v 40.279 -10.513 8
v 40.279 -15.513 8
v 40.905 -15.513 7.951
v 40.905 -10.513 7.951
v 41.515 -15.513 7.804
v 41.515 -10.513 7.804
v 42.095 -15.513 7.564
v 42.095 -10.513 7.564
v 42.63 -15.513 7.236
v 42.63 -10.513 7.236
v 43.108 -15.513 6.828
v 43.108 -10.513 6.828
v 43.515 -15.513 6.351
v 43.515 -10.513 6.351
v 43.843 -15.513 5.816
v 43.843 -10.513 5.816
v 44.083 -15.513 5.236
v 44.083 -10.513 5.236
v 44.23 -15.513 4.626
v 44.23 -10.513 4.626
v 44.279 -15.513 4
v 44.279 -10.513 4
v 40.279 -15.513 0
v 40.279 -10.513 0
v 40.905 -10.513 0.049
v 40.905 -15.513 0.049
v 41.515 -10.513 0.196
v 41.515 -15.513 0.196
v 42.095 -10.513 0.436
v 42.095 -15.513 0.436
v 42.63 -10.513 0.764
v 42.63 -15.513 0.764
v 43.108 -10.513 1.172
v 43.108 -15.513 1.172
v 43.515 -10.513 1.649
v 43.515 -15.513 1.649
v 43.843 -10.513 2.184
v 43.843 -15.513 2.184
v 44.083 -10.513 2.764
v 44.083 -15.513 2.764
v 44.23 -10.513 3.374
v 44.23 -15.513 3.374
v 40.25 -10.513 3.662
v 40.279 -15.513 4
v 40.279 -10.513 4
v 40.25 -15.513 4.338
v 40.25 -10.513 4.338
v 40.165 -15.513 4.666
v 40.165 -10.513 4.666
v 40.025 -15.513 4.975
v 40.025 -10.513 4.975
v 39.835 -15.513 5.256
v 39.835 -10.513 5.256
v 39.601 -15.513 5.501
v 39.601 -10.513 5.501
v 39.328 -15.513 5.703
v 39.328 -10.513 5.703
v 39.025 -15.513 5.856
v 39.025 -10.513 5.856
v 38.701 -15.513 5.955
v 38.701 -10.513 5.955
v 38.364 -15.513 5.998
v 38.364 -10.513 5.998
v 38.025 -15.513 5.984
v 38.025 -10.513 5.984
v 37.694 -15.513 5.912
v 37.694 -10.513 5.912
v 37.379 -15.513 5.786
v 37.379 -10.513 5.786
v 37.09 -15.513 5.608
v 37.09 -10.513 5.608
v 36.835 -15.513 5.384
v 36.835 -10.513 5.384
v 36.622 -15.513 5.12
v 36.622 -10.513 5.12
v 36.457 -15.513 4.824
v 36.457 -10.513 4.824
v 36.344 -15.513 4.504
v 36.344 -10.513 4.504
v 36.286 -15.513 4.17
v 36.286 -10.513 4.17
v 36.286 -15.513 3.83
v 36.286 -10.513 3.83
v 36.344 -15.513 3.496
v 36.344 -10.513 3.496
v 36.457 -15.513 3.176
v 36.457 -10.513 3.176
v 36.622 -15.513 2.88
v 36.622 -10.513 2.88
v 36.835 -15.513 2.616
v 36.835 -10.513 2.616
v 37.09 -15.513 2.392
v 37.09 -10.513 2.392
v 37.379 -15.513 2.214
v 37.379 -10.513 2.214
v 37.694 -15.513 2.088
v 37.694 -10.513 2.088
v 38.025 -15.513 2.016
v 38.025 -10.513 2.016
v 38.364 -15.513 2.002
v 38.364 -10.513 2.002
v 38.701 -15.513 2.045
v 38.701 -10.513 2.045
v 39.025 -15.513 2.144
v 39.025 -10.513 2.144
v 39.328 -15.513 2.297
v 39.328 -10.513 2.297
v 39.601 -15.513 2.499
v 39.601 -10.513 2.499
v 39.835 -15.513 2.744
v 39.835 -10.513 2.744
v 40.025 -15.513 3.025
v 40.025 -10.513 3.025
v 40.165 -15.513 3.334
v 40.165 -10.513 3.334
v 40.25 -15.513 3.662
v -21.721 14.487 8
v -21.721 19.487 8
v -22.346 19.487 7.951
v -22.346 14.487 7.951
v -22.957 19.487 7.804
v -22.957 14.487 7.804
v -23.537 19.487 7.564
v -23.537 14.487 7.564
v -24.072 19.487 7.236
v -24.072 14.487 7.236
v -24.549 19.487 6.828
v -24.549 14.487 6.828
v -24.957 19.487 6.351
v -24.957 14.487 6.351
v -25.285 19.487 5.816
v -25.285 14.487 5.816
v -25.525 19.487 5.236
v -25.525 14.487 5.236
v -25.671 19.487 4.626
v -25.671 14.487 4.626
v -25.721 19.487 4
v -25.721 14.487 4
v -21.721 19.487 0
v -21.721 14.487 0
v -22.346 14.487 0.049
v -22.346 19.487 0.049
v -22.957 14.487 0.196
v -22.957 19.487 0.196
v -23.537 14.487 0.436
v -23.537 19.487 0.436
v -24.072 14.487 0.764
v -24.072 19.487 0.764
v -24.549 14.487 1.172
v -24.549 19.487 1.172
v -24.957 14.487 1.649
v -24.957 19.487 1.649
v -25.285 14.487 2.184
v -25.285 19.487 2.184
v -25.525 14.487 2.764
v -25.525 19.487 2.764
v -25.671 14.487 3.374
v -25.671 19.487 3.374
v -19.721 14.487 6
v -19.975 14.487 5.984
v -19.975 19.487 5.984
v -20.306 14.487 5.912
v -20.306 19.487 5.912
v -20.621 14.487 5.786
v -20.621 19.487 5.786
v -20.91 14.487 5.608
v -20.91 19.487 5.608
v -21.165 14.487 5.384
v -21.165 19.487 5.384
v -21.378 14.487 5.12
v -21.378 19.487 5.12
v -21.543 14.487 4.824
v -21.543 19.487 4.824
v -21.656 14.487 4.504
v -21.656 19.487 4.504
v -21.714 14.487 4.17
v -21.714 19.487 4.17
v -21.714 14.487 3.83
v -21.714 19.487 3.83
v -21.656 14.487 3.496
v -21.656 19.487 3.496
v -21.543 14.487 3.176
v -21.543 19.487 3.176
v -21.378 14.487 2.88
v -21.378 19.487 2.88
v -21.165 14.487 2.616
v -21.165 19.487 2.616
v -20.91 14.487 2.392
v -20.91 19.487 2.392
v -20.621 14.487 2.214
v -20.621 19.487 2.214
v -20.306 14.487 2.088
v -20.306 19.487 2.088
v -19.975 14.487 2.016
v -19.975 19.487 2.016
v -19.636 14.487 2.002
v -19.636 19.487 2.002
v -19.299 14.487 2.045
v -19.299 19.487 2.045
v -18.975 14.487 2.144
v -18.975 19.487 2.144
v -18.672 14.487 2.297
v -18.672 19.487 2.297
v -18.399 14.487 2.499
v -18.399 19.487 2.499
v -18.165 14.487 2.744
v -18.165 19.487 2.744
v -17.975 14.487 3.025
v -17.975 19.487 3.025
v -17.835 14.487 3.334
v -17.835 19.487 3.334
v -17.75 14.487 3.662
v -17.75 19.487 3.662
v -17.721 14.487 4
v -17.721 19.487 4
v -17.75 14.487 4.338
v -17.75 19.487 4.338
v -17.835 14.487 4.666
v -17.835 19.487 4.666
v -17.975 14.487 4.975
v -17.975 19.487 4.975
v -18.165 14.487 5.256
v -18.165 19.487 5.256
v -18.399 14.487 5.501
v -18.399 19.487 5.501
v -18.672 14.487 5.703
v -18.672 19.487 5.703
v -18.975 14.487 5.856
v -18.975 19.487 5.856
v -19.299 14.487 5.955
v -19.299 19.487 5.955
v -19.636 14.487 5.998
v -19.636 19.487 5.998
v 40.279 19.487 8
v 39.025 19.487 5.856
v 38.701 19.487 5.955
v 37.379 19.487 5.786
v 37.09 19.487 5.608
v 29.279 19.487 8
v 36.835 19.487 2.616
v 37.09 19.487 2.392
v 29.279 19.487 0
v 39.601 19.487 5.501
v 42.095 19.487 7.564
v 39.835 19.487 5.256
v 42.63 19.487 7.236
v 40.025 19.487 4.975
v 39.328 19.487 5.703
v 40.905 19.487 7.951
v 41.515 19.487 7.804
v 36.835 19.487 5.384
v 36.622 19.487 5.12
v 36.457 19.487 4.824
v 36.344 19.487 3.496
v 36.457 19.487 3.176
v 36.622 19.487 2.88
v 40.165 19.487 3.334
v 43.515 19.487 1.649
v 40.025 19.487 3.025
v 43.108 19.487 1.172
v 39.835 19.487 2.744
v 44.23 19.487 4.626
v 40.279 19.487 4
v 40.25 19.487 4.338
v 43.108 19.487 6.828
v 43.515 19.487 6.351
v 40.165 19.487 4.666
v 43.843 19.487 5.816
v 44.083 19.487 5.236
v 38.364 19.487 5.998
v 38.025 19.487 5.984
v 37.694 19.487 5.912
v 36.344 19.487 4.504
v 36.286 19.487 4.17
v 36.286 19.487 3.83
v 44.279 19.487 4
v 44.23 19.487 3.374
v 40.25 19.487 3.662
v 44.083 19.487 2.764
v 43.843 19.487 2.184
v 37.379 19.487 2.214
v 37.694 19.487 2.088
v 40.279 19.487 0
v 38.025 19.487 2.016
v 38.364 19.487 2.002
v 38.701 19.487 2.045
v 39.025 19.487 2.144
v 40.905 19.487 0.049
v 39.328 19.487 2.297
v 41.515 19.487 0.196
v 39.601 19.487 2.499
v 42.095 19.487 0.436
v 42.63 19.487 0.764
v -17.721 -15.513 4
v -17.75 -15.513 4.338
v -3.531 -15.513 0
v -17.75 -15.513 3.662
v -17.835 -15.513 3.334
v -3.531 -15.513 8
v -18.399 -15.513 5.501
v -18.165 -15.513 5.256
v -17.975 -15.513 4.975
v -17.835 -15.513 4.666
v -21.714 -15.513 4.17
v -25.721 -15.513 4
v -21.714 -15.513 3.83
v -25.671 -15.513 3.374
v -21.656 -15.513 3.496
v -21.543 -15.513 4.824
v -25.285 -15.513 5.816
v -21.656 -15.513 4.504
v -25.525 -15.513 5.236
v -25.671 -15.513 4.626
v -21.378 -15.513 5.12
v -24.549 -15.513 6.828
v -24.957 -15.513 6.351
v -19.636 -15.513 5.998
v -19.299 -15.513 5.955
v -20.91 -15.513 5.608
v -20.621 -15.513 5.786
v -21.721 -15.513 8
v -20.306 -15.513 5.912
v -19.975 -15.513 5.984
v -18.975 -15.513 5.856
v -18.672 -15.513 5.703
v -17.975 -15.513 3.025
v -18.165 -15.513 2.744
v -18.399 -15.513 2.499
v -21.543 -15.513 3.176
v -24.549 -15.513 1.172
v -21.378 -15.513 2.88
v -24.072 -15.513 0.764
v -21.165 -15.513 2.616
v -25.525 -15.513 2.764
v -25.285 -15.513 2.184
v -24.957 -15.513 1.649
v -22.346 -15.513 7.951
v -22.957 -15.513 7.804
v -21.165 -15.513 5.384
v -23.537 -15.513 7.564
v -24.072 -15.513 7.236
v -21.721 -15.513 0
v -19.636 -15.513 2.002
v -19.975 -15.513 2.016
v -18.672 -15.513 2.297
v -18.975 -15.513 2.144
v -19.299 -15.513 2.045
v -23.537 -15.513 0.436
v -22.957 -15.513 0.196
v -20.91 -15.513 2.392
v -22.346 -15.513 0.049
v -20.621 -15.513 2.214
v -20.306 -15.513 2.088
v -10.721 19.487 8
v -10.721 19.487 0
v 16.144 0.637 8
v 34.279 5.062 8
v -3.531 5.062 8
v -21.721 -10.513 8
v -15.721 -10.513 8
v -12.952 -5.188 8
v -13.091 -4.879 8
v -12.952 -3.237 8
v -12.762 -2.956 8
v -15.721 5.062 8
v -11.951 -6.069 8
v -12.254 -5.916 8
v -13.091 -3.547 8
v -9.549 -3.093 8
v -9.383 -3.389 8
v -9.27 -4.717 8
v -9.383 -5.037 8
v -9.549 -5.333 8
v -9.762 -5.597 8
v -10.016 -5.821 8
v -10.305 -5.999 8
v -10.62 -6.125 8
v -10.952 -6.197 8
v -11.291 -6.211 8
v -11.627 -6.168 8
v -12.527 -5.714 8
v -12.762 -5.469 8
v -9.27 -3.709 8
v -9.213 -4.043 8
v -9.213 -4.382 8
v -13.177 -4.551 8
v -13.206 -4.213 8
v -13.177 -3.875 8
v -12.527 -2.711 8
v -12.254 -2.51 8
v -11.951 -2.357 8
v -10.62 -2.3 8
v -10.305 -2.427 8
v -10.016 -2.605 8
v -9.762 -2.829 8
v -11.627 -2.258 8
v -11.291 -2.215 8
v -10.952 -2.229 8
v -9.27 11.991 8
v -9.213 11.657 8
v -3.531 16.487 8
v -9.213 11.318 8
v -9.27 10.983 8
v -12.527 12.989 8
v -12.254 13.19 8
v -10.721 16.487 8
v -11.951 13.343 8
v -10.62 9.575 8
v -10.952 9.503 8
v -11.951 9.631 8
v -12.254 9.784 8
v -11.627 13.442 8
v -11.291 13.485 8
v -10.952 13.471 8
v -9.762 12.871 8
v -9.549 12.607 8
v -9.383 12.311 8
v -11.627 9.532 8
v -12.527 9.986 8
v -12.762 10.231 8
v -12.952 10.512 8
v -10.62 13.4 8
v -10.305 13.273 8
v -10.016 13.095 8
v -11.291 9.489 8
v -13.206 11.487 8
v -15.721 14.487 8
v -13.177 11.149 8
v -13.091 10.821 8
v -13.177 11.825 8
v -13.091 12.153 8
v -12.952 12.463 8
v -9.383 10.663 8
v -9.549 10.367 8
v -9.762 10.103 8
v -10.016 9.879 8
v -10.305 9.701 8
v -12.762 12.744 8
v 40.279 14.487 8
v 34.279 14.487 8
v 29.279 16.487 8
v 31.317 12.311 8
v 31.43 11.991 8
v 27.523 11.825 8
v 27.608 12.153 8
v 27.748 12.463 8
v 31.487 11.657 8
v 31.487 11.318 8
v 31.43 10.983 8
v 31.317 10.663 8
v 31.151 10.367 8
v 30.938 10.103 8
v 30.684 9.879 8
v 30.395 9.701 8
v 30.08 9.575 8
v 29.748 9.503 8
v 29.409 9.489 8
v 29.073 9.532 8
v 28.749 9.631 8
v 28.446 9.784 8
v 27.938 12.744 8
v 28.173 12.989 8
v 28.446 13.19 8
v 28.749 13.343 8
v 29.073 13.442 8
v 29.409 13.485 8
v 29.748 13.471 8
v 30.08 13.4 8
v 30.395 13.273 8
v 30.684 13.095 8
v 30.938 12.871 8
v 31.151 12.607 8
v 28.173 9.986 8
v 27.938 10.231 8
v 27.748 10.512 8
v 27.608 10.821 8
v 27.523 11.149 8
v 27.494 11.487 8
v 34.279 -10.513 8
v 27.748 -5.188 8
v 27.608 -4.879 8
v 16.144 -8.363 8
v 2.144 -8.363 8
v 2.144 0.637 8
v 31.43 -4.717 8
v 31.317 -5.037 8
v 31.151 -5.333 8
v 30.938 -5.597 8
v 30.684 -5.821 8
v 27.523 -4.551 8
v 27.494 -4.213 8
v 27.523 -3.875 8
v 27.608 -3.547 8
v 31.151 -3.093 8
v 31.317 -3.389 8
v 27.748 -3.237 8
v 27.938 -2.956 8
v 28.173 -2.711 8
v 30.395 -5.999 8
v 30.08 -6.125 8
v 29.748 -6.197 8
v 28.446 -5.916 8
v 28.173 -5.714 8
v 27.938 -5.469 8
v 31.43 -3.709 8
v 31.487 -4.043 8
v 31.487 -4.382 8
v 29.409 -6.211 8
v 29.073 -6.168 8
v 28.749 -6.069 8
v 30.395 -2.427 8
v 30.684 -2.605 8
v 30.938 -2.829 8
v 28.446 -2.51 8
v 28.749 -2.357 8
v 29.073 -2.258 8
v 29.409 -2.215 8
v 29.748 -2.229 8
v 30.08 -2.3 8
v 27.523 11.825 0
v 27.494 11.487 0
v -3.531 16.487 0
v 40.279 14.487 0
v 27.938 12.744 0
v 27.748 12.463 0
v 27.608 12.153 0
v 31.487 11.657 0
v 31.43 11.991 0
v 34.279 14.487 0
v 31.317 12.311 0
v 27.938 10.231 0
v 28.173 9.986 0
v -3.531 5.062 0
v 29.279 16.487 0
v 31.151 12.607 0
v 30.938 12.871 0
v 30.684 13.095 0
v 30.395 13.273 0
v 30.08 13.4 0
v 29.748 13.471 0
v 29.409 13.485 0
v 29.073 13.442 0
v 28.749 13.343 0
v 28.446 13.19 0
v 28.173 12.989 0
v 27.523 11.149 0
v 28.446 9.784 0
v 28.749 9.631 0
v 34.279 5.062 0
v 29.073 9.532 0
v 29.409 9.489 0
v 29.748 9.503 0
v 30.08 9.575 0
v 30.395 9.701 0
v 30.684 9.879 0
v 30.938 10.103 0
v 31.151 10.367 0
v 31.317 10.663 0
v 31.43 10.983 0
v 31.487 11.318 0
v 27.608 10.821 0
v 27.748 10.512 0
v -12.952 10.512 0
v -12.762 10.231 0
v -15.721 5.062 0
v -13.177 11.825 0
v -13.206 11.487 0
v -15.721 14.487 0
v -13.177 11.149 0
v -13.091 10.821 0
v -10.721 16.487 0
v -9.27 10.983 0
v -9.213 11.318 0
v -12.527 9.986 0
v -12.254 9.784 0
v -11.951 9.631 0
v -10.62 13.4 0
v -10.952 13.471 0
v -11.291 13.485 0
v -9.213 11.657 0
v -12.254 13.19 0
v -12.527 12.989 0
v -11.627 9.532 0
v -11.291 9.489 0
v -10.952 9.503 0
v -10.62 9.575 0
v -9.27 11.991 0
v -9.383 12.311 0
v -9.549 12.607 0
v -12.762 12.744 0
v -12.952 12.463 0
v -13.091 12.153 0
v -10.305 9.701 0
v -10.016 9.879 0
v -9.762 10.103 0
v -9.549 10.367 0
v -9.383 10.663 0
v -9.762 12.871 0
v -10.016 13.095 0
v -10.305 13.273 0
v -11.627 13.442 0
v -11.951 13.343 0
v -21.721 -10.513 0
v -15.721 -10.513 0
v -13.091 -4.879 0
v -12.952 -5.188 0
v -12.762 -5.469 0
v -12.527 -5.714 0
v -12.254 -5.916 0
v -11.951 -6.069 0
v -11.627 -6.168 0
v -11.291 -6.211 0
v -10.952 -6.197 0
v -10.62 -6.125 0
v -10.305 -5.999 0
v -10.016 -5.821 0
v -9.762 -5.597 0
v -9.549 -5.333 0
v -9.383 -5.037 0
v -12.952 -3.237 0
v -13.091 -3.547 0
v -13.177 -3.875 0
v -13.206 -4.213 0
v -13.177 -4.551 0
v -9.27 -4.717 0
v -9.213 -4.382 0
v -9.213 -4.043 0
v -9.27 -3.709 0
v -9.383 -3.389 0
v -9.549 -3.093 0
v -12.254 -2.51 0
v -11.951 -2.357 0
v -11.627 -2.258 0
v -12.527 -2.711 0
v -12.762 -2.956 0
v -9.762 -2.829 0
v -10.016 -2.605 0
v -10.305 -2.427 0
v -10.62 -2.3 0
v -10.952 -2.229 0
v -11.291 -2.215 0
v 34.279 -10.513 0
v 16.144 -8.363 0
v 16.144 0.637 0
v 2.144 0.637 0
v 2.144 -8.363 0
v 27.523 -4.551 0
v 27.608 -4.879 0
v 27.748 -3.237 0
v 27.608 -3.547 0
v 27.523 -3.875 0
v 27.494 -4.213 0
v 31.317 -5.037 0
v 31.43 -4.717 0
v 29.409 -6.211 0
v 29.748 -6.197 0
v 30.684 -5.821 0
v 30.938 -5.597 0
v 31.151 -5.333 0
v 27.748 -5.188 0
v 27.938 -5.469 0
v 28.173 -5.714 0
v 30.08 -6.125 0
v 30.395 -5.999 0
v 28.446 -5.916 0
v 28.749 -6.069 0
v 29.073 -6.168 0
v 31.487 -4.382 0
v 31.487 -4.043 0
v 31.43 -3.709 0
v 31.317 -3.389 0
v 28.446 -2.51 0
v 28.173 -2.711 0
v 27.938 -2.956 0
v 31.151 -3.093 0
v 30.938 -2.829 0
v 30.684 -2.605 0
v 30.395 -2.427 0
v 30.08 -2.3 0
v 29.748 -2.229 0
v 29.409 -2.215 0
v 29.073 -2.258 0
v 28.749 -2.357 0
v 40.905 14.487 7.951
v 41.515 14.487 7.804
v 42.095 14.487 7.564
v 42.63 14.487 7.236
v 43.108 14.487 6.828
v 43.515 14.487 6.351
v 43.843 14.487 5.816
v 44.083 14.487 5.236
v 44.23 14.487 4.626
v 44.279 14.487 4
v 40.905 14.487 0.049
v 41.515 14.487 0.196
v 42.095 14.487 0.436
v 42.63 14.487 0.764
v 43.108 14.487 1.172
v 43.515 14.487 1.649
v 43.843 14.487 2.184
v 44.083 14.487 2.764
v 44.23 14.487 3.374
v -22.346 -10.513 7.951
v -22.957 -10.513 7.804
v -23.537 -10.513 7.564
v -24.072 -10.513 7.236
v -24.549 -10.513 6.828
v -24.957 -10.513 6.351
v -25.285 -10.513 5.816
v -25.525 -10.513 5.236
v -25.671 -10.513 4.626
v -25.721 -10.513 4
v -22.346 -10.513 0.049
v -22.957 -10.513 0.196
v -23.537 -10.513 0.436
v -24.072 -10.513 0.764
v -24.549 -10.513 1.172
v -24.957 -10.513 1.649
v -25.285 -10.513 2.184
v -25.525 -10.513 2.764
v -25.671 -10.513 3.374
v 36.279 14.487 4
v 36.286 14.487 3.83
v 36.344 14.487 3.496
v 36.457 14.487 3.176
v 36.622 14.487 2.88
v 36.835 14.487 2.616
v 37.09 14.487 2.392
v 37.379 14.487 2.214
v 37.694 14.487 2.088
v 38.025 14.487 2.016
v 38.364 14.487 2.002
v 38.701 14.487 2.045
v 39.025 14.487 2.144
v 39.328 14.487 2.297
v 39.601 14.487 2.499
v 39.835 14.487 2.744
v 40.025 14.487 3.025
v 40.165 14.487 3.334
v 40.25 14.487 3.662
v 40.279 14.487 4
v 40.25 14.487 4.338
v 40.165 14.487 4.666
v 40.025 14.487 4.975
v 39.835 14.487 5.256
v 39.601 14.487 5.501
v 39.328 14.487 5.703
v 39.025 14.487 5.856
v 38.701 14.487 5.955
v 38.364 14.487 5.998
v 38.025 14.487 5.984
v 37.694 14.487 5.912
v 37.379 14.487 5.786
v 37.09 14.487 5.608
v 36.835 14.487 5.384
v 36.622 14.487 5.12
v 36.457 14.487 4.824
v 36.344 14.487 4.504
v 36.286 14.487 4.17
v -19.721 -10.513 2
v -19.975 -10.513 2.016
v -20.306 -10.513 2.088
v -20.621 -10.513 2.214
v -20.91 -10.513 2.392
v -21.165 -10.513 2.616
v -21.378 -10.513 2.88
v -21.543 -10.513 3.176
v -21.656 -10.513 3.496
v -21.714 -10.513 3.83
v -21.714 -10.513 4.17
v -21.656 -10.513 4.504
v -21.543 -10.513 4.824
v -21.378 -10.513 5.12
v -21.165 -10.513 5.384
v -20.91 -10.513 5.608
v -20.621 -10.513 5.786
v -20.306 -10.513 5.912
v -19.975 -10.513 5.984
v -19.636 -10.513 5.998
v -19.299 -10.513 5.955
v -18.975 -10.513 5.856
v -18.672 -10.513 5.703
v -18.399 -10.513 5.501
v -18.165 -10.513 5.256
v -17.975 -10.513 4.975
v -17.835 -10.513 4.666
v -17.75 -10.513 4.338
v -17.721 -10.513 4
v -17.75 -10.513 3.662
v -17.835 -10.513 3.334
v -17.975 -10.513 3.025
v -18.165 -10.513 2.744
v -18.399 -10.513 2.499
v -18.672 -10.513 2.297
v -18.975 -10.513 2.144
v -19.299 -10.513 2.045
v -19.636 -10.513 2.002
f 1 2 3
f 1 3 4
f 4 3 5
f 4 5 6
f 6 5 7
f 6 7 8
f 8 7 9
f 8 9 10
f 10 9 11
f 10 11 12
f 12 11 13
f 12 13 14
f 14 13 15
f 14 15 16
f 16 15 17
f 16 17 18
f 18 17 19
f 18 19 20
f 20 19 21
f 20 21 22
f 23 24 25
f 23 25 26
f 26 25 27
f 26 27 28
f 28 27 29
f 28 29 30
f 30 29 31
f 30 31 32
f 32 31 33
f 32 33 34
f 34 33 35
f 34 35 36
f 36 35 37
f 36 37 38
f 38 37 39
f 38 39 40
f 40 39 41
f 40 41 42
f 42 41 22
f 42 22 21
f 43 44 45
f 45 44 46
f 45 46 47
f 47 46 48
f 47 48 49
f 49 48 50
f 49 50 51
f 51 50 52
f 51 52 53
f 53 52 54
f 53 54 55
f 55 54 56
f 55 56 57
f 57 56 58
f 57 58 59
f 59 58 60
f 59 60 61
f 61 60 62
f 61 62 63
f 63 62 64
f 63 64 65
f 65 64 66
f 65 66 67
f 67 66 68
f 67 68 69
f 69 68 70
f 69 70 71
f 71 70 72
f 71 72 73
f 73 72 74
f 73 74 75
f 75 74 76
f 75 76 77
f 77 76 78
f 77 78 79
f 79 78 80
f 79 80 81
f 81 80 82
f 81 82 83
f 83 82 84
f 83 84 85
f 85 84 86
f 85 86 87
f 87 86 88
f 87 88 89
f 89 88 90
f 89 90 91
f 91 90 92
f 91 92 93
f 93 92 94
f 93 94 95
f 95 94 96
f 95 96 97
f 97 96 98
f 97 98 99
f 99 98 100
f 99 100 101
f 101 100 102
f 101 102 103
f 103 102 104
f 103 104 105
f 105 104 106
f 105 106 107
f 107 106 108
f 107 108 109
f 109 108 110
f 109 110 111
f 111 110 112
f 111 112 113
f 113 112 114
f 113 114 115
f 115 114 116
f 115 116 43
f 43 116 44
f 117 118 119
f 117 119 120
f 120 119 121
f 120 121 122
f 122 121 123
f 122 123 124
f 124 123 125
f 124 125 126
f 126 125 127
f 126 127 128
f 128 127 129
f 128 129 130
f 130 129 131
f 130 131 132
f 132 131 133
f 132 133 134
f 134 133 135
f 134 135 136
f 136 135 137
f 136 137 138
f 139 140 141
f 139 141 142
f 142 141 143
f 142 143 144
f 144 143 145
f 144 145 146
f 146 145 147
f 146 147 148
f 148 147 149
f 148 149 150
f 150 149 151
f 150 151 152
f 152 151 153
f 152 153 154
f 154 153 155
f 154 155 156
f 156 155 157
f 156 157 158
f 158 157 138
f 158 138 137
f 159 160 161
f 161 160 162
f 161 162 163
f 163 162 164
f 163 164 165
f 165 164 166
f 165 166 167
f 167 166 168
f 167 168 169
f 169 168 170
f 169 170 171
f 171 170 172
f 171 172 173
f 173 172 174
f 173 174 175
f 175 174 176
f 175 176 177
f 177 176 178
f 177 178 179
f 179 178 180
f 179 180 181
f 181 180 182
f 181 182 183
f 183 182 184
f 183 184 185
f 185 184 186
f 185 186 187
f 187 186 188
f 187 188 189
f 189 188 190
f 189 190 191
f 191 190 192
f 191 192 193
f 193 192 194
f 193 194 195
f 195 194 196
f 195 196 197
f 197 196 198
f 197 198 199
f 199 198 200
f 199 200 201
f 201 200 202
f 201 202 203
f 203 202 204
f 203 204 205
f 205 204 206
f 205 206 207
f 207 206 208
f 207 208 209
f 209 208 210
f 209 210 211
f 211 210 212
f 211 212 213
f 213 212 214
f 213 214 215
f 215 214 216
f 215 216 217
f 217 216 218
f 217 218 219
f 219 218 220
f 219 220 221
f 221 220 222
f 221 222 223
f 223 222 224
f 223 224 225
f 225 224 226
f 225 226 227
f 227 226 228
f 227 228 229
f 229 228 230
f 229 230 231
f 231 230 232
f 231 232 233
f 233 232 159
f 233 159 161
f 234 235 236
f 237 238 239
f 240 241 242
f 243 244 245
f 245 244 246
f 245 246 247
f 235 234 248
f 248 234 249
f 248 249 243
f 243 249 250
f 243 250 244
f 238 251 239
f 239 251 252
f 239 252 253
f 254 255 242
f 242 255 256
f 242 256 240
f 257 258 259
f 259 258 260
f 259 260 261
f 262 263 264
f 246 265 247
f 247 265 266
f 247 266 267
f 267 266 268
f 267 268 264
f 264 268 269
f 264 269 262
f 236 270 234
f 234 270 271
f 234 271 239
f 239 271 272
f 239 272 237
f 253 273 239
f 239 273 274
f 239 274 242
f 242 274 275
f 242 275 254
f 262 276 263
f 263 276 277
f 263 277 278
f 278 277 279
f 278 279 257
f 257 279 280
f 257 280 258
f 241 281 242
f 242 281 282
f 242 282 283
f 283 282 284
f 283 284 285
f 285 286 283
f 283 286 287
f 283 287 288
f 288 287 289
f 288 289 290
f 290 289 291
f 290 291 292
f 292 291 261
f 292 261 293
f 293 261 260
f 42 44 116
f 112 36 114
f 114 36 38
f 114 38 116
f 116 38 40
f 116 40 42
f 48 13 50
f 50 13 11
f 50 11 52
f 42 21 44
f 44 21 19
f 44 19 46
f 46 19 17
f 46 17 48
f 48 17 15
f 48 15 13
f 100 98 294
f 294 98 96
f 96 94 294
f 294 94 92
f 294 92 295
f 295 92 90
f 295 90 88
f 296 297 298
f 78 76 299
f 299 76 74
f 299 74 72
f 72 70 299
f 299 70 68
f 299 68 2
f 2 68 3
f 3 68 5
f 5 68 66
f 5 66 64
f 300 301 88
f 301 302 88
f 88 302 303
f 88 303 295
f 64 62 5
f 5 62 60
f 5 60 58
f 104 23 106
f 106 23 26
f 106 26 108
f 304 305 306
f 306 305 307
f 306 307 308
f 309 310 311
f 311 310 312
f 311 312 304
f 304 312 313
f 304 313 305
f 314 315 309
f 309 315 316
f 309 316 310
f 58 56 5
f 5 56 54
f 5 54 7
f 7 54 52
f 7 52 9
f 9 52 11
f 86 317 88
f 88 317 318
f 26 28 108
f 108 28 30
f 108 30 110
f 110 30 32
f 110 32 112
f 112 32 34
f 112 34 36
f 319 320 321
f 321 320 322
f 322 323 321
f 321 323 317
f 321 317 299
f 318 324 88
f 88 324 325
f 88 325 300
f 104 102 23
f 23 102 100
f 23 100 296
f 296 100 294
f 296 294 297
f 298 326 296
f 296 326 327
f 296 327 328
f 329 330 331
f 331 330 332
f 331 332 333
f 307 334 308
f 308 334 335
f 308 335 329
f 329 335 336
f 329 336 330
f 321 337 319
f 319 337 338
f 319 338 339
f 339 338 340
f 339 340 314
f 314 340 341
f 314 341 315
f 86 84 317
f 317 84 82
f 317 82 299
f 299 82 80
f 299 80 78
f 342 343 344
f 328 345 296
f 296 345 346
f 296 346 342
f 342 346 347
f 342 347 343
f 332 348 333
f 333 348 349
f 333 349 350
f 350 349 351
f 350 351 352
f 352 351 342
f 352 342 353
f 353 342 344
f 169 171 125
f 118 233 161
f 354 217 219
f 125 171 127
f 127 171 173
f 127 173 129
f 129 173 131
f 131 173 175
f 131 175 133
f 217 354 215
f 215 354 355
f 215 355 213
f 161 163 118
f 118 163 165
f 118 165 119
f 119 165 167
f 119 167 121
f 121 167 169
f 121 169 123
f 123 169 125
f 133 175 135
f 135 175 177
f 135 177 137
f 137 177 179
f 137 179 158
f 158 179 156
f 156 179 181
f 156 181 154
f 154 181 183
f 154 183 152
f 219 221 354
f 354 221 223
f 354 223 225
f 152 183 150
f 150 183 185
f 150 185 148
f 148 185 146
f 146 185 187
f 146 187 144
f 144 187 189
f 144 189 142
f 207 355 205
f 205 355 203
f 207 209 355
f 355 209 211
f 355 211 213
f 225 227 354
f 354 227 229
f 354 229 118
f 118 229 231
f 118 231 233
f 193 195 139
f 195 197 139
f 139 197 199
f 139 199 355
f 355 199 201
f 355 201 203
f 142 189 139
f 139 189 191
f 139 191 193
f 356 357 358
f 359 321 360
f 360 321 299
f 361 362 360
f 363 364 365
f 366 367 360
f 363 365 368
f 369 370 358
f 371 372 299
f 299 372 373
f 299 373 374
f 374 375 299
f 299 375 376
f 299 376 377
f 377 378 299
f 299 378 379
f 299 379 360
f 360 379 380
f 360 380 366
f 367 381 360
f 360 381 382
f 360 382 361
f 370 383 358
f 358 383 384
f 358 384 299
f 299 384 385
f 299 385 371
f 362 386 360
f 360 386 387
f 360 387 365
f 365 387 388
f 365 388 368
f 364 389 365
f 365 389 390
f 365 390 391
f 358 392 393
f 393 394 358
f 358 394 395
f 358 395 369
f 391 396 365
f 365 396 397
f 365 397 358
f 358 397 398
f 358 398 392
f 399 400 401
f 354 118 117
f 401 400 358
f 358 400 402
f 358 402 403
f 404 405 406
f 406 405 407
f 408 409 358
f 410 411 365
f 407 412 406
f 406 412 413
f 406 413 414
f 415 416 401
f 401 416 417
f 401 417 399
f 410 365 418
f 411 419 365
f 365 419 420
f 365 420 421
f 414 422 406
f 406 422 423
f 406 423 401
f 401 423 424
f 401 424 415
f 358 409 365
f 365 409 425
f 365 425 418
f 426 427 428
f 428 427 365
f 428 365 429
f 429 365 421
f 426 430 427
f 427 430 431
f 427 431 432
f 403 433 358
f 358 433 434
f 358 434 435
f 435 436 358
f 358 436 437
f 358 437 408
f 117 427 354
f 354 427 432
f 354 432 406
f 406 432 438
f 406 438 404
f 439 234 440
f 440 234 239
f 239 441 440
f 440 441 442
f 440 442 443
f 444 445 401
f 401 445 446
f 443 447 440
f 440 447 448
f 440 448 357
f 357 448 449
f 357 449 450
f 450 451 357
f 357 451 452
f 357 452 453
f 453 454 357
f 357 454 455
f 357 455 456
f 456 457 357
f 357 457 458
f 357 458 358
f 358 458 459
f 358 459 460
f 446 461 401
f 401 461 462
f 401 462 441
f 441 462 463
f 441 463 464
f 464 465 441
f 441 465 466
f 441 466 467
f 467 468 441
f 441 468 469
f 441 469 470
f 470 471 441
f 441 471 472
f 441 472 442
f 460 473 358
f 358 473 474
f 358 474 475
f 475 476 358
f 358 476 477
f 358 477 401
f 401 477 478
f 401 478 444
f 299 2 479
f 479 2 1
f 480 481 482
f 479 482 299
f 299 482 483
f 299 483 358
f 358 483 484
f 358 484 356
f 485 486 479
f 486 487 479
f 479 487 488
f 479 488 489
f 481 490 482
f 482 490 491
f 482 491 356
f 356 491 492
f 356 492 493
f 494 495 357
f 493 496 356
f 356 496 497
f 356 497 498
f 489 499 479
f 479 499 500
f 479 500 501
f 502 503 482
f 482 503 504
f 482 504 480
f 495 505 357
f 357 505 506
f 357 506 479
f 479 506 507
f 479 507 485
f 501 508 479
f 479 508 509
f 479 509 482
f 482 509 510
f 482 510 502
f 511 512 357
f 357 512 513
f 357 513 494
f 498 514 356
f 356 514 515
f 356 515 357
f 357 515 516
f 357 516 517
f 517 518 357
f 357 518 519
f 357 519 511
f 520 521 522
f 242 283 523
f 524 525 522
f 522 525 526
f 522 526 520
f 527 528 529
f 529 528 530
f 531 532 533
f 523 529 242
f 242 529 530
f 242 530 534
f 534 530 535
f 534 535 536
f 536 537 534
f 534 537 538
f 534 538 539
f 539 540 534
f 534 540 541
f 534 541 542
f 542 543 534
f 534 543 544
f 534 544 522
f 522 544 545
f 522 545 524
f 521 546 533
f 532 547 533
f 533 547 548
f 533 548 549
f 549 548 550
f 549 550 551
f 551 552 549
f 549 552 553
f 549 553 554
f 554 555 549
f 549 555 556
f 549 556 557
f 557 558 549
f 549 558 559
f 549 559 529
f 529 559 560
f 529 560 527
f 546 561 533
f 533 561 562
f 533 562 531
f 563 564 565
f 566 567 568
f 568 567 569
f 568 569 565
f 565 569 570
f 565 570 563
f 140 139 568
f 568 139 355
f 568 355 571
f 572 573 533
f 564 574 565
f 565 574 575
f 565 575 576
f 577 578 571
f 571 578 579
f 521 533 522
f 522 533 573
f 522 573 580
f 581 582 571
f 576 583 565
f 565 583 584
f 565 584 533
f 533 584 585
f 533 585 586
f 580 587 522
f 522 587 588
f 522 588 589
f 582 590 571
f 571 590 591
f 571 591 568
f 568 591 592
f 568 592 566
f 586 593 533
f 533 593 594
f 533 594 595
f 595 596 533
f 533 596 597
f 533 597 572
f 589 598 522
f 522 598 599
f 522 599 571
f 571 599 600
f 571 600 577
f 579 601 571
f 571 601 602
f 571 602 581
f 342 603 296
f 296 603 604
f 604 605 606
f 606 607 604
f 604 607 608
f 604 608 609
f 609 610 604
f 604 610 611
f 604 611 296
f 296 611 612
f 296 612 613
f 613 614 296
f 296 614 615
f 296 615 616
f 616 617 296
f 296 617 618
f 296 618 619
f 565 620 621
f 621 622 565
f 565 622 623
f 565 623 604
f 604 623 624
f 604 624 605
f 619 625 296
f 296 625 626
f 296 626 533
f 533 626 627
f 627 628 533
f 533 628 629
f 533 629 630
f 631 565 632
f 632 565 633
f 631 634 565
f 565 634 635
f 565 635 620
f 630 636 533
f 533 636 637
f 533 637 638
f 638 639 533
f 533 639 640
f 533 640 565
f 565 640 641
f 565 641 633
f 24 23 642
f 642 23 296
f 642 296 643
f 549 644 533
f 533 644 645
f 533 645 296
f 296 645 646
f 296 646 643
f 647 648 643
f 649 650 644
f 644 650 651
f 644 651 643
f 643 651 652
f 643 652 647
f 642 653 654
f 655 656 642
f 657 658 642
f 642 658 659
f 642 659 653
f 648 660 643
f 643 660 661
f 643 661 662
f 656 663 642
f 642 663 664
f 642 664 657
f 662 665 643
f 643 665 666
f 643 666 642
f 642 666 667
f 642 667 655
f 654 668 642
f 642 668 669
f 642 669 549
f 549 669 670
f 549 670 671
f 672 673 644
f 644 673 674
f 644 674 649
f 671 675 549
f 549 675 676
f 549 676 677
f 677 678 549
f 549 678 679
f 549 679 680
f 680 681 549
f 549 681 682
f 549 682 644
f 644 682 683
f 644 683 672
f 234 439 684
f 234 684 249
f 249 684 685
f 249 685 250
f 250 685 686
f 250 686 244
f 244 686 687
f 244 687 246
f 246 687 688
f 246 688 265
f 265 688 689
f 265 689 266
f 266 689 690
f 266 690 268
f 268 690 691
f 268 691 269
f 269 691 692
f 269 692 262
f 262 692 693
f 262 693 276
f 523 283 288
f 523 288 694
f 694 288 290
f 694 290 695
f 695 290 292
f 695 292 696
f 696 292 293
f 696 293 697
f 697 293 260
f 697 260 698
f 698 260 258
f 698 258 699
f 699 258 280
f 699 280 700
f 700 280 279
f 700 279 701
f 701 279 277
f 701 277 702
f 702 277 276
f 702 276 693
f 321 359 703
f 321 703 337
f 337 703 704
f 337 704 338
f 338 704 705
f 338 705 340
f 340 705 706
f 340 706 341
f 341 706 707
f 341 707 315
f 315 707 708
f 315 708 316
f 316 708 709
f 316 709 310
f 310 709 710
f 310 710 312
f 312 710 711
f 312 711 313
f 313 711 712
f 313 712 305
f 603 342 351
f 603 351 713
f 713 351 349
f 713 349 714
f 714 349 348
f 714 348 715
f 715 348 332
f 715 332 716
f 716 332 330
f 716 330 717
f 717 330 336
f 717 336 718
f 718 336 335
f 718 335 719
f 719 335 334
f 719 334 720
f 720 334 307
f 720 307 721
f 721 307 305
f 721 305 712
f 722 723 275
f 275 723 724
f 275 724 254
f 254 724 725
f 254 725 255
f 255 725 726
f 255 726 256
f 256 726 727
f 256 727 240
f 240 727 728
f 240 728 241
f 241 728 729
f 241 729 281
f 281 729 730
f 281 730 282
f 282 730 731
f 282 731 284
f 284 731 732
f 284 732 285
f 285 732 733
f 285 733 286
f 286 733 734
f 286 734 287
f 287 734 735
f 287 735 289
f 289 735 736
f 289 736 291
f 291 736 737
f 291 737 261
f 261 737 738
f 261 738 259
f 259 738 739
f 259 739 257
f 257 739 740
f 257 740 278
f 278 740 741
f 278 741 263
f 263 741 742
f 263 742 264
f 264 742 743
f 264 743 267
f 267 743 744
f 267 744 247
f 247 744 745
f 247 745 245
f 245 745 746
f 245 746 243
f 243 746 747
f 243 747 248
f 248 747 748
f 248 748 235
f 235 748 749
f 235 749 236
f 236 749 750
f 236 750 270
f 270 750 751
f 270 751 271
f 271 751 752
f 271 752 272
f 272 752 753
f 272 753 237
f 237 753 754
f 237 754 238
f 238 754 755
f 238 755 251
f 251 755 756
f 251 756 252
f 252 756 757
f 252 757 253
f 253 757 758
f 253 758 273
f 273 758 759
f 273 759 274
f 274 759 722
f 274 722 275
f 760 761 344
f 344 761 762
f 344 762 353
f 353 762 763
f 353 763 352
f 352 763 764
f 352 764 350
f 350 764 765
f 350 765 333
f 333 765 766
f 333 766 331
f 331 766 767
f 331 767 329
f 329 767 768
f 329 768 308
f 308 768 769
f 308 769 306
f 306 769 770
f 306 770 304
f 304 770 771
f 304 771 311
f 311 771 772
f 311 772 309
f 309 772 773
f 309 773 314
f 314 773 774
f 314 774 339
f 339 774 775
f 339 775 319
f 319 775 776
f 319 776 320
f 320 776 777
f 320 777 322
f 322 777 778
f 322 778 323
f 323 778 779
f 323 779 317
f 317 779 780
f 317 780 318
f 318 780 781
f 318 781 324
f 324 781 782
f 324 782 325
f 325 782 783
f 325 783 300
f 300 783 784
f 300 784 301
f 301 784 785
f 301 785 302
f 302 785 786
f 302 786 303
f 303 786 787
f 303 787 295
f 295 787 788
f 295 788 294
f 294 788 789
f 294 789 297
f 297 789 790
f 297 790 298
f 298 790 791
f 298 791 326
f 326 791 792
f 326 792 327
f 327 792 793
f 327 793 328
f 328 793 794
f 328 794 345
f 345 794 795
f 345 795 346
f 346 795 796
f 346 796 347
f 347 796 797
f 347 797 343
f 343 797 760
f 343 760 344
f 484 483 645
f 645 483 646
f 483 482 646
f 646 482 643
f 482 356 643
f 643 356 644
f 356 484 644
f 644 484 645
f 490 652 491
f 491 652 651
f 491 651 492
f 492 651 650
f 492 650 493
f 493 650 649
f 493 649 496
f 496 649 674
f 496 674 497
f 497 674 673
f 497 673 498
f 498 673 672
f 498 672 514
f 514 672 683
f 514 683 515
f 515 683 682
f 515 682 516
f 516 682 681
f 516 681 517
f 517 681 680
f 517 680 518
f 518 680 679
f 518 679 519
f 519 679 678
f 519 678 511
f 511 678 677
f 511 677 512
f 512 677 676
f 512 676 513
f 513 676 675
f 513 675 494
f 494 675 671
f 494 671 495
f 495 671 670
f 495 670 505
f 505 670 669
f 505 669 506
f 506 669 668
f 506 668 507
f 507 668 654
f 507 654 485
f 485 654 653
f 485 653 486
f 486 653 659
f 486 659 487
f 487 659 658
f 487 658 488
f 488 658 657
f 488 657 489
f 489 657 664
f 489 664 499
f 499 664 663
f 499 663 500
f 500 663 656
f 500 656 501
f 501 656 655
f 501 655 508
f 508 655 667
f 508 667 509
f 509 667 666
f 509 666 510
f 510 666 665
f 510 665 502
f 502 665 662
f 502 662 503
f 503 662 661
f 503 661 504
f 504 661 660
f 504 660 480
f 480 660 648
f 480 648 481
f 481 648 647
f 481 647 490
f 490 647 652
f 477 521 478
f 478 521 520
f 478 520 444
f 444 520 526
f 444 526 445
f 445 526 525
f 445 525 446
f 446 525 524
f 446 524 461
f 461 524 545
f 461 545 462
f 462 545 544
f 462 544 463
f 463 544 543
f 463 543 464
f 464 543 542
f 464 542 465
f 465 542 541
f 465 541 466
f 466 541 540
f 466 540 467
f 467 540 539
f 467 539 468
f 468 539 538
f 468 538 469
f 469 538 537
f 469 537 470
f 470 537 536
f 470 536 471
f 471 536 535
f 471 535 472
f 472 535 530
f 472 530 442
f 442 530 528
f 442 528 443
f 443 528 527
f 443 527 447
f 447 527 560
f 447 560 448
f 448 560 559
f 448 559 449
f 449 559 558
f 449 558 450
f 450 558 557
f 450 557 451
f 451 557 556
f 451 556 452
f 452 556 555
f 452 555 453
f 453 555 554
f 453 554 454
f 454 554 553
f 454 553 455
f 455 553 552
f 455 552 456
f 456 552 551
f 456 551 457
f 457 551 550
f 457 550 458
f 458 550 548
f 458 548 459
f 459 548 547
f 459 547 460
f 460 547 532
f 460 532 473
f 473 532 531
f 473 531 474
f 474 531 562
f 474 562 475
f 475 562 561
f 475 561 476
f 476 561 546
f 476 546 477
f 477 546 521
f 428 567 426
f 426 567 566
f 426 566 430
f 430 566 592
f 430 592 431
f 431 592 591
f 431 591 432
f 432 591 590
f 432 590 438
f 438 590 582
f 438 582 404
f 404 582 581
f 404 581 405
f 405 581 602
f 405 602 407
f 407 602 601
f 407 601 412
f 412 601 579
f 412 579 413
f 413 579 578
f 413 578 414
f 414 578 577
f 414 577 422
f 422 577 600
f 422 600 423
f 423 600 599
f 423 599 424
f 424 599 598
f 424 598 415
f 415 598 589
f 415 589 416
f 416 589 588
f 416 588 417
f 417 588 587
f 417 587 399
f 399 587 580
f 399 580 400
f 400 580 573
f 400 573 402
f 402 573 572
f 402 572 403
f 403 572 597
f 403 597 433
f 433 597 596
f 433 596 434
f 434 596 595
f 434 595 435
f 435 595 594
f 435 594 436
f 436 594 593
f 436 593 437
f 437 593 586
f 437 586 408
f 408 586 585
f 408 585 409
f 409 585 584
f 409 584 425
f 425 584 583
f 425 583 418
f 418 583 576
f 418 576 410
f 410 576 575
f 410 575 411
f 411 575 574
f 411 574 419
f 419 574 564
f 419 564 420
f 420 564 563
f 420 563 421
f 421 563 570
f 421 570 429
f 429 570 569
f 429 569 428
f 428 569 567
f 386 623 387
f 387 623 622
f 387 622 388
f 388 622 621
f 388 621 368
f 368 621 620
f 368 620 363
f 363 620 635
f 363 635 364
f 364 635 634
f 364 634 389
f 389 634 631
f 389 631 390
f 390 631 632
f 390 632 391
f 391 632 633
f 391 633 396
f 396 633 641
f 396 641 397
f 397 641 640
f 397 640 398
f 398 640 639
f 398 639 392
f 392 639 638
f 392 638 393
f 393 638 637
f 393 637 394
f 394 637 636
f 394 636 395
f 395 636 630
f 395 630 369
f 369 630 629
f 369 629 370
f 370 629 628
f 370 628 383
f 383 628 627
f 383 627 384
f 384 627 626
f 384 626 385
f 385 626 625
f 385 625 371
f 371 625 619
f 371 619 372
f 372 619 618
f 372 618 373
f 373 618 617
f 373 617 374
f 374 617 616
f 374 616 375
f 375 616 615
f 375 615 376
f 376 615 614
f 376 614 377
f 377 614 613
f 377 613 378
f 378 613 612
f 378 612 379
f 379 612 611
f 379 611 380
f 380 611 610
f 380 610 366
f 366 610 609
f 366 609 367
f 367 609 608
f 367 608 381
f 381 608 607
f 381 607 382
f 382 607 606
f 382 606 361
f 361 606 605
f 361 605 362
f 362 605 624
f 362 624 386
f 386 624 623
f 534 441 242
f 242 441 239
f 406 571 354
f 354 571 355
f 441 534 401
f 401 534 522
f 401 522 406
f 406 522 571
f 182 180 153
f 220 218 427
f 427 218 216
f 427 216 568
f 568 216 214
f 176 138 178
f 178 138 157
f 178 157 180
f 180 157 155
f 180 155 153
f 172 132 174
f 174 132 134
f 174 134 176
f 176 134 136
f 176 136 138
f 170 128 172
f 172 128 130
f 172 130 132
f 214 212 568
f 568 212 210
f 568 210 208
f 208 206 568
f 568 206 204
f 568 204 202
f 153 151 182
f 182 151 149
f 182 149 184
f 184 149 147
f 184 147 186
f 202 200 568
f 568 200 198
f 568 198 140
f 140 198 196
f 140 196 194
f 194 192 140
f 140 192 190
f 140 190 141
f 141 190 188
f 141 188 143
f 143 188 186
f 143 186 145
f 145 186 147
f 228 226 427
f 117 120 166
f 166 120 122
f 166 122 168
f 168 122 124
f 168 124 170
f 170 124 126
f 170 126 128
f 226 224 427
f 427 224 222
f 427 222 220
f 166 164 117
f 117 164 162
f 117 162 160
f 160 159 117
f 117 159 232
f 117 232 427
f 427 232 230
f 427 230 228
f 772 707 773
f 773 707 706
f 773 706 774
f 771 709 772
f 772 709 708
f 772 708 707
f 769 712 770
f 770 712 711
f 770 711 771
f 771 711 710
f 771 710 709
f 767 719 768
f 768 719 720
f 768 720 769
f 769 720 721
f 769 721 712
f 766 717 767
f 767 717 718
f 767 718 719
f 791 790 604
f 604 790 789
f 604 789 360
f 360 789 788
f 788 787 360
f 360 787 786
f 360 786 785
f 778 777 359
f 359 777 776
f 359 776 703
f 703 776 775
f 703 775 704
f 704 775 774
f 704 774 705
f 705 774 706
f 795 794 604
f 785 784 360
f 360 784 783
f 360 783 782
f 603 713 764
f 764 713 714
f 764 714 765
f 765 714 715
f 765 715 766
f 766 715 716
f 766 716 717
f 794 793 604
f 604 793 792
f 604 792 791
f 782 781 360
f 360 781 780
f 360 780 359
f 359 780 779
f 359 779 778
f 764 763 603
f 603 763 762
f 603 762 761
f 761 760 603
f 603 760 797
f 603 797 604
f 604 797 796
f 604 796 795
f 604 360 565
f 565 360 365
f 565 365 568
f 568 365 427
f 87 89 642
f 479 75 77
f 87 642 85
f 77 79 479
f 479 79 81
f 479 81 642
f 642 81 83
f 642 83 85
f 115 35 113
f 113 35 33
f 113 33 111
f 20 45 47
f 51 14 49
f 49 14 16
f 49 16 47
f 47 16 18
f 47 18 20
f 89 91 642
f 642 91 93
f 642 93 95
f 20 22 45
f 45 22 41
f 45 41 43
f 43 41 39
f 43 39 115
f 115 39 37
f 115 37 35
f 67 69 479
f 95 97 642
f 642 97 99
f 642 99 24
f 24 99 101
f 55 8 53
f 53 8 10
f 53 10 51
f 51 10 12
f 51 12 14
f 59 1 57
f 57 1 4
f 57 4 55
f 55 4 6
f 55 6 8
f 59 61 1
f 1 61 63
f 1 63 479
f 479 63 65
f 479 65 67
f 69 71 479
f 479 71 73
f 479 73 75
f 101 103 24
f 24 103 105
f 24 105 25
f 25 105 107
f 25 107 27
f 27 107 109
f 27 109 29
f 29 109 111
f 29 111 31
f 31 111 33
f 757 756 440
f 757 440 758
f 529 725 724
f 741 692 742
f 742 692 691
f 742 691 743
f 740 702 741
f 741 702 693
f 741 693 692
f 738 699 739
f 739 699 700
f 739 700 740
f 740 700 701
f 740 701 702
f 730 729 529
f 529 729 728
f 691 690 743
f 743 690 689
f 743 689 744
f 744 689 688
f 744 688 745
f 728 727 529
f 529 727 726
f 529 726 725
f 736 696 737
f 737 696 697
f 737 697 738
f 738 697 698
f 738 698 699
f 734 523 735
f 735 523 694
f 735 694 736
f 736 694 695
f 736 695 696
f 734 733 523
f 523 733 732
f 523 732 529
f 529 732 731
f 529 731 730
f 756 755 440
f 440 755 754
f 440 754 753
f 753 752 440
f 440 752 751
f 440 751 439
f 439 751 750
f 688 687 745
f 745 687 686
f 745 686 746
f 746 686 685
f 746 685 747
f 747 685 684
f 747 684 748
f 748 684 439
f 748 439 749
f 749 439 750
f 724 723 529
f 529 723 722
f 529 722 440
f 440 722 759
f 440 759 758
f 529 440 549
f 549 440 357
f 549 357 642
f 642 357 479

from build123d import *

# Parameters (mm, degrees)
SKETCH1_W           = 70
SKETCH1_H           = 35
BOSS_EXTRUDE1_DEPTH = 8
FILLET3_R           = 4
SKETCH7_R           = 2
CUT_EXTRUDE4_DEPTH  = 35
SKETCH8_R           = 2
SKETCH8_W           = 14
SKETCH8_H           = 9
CUT_EXTRUDE5_DEPTH  = 50.034709858
SKETCH10_W          = 40
SKETCH10_H          = 8
CUT_EXTRUDE6_DEPTH  = 3
SKETCH12_W          = 10
SKETCH12_H          = 25
CUT_EXTRUDE7_DEPTH  = 50.034709858


with BuildPart() as part:
    # Sketch1 → Boss-Extrude1 (new body)
    with BuildSketch(Plane.XY):
        with Locations((9.279257068, 1.987179487)):
            Rectangle(SKETCH1_W, SKETCH1_H)
    extrude(amount=BOSS_EXTRUDE1_DEPTH)

    # Fillet3
    fillet3_edges = [part.edges().sort_by_distance(p)[0] for p in [
        (44.279257068, 1.987179487, 0),
        (44.279257068, 1.987179487, 8),
        (-25.720742932, 1.987179487, 0),
        (-25.720742932, 1.987179487, 8),
    ]]
    fillet(fillet3_edges, radius=FILLET3_R - 0.0001)  # a hair under: the kernel refuses the full size

    # Sketch7 → Cut-Extrude4 (cut)
    with BuildSketch(Plane.XZ.offset(15.512820513)):
        with Locations((38.279257068, 4)):
            Circle(SKETCH7_R)
        with Locations((-19.720742932, 4)):
            Circle(SKETCH7_R)
    extrude(amount=-CUT_EXTRUDE4_DEPTH, mode=Mode.SUBTRACT)

    # Sketch8 → Cut-Extrude5 (cut, through all)
    with BuildSketch(Plane(origin=(0, 0, 0), x_dir=(-1, 0, 0), z_dir=(0, 0, -1))):
        with Locations((-29.494257068, -4.212820513)):
            Circle(SKETCH8_R)
        with Locations((-29.494257068, 11.487179487)):
            Circle(SKETCH8_R)
        with Locations((11.205742932, 11.487179487)):
            Circle(SKETCH8_R)
        with Locations((11.205742932, -4.212820513)):
            Circle(SKETCH8_R)
        with Locations((-9.144257068, -3.862820513)):
            Rectangle(SKETCH8_W, SKETCH8_H)
    extrude(amount=-CUT_EXTRUDE5_DEPTH, mode=Mode.SUBTRACT)

    # Sketch10 → Cut-Extrude6 (cut)
    with BuildSketch(Plane(origin=(0, 19.487179487, 0), x_dir=(1, 0, 0), z_dir=(0, 1, 0))):
        with Locations((9.279257068, -4)):
            Rectangle(SKETCH10_W, SKETCH10_H)
    extrude(amount=-CUT_EXTRUDE6_DEPTH, mode=Mode.SUBTRACT)

    # Sketch12 → Cut-Extrude7 (cut, through all)
    with BuildSketch(Plane(origin=(0, 0, 0), x_dir=(-1, 0, 0), z_dir=(0, 0, -1))):
        with Locations((20.720742932, 1.987179487)):
            Rectangle(SKETCH12_W, SKETCH12_H)
        with Locations((-39.279257068, 1.987179487)):
            Rectangle(SKETCH12_W, SKETCH12_H)
    extrude(amount=-CUT_EXTRUDE7_DEPTH, mode=Mode.SUBTRACT)


solid = part.part
